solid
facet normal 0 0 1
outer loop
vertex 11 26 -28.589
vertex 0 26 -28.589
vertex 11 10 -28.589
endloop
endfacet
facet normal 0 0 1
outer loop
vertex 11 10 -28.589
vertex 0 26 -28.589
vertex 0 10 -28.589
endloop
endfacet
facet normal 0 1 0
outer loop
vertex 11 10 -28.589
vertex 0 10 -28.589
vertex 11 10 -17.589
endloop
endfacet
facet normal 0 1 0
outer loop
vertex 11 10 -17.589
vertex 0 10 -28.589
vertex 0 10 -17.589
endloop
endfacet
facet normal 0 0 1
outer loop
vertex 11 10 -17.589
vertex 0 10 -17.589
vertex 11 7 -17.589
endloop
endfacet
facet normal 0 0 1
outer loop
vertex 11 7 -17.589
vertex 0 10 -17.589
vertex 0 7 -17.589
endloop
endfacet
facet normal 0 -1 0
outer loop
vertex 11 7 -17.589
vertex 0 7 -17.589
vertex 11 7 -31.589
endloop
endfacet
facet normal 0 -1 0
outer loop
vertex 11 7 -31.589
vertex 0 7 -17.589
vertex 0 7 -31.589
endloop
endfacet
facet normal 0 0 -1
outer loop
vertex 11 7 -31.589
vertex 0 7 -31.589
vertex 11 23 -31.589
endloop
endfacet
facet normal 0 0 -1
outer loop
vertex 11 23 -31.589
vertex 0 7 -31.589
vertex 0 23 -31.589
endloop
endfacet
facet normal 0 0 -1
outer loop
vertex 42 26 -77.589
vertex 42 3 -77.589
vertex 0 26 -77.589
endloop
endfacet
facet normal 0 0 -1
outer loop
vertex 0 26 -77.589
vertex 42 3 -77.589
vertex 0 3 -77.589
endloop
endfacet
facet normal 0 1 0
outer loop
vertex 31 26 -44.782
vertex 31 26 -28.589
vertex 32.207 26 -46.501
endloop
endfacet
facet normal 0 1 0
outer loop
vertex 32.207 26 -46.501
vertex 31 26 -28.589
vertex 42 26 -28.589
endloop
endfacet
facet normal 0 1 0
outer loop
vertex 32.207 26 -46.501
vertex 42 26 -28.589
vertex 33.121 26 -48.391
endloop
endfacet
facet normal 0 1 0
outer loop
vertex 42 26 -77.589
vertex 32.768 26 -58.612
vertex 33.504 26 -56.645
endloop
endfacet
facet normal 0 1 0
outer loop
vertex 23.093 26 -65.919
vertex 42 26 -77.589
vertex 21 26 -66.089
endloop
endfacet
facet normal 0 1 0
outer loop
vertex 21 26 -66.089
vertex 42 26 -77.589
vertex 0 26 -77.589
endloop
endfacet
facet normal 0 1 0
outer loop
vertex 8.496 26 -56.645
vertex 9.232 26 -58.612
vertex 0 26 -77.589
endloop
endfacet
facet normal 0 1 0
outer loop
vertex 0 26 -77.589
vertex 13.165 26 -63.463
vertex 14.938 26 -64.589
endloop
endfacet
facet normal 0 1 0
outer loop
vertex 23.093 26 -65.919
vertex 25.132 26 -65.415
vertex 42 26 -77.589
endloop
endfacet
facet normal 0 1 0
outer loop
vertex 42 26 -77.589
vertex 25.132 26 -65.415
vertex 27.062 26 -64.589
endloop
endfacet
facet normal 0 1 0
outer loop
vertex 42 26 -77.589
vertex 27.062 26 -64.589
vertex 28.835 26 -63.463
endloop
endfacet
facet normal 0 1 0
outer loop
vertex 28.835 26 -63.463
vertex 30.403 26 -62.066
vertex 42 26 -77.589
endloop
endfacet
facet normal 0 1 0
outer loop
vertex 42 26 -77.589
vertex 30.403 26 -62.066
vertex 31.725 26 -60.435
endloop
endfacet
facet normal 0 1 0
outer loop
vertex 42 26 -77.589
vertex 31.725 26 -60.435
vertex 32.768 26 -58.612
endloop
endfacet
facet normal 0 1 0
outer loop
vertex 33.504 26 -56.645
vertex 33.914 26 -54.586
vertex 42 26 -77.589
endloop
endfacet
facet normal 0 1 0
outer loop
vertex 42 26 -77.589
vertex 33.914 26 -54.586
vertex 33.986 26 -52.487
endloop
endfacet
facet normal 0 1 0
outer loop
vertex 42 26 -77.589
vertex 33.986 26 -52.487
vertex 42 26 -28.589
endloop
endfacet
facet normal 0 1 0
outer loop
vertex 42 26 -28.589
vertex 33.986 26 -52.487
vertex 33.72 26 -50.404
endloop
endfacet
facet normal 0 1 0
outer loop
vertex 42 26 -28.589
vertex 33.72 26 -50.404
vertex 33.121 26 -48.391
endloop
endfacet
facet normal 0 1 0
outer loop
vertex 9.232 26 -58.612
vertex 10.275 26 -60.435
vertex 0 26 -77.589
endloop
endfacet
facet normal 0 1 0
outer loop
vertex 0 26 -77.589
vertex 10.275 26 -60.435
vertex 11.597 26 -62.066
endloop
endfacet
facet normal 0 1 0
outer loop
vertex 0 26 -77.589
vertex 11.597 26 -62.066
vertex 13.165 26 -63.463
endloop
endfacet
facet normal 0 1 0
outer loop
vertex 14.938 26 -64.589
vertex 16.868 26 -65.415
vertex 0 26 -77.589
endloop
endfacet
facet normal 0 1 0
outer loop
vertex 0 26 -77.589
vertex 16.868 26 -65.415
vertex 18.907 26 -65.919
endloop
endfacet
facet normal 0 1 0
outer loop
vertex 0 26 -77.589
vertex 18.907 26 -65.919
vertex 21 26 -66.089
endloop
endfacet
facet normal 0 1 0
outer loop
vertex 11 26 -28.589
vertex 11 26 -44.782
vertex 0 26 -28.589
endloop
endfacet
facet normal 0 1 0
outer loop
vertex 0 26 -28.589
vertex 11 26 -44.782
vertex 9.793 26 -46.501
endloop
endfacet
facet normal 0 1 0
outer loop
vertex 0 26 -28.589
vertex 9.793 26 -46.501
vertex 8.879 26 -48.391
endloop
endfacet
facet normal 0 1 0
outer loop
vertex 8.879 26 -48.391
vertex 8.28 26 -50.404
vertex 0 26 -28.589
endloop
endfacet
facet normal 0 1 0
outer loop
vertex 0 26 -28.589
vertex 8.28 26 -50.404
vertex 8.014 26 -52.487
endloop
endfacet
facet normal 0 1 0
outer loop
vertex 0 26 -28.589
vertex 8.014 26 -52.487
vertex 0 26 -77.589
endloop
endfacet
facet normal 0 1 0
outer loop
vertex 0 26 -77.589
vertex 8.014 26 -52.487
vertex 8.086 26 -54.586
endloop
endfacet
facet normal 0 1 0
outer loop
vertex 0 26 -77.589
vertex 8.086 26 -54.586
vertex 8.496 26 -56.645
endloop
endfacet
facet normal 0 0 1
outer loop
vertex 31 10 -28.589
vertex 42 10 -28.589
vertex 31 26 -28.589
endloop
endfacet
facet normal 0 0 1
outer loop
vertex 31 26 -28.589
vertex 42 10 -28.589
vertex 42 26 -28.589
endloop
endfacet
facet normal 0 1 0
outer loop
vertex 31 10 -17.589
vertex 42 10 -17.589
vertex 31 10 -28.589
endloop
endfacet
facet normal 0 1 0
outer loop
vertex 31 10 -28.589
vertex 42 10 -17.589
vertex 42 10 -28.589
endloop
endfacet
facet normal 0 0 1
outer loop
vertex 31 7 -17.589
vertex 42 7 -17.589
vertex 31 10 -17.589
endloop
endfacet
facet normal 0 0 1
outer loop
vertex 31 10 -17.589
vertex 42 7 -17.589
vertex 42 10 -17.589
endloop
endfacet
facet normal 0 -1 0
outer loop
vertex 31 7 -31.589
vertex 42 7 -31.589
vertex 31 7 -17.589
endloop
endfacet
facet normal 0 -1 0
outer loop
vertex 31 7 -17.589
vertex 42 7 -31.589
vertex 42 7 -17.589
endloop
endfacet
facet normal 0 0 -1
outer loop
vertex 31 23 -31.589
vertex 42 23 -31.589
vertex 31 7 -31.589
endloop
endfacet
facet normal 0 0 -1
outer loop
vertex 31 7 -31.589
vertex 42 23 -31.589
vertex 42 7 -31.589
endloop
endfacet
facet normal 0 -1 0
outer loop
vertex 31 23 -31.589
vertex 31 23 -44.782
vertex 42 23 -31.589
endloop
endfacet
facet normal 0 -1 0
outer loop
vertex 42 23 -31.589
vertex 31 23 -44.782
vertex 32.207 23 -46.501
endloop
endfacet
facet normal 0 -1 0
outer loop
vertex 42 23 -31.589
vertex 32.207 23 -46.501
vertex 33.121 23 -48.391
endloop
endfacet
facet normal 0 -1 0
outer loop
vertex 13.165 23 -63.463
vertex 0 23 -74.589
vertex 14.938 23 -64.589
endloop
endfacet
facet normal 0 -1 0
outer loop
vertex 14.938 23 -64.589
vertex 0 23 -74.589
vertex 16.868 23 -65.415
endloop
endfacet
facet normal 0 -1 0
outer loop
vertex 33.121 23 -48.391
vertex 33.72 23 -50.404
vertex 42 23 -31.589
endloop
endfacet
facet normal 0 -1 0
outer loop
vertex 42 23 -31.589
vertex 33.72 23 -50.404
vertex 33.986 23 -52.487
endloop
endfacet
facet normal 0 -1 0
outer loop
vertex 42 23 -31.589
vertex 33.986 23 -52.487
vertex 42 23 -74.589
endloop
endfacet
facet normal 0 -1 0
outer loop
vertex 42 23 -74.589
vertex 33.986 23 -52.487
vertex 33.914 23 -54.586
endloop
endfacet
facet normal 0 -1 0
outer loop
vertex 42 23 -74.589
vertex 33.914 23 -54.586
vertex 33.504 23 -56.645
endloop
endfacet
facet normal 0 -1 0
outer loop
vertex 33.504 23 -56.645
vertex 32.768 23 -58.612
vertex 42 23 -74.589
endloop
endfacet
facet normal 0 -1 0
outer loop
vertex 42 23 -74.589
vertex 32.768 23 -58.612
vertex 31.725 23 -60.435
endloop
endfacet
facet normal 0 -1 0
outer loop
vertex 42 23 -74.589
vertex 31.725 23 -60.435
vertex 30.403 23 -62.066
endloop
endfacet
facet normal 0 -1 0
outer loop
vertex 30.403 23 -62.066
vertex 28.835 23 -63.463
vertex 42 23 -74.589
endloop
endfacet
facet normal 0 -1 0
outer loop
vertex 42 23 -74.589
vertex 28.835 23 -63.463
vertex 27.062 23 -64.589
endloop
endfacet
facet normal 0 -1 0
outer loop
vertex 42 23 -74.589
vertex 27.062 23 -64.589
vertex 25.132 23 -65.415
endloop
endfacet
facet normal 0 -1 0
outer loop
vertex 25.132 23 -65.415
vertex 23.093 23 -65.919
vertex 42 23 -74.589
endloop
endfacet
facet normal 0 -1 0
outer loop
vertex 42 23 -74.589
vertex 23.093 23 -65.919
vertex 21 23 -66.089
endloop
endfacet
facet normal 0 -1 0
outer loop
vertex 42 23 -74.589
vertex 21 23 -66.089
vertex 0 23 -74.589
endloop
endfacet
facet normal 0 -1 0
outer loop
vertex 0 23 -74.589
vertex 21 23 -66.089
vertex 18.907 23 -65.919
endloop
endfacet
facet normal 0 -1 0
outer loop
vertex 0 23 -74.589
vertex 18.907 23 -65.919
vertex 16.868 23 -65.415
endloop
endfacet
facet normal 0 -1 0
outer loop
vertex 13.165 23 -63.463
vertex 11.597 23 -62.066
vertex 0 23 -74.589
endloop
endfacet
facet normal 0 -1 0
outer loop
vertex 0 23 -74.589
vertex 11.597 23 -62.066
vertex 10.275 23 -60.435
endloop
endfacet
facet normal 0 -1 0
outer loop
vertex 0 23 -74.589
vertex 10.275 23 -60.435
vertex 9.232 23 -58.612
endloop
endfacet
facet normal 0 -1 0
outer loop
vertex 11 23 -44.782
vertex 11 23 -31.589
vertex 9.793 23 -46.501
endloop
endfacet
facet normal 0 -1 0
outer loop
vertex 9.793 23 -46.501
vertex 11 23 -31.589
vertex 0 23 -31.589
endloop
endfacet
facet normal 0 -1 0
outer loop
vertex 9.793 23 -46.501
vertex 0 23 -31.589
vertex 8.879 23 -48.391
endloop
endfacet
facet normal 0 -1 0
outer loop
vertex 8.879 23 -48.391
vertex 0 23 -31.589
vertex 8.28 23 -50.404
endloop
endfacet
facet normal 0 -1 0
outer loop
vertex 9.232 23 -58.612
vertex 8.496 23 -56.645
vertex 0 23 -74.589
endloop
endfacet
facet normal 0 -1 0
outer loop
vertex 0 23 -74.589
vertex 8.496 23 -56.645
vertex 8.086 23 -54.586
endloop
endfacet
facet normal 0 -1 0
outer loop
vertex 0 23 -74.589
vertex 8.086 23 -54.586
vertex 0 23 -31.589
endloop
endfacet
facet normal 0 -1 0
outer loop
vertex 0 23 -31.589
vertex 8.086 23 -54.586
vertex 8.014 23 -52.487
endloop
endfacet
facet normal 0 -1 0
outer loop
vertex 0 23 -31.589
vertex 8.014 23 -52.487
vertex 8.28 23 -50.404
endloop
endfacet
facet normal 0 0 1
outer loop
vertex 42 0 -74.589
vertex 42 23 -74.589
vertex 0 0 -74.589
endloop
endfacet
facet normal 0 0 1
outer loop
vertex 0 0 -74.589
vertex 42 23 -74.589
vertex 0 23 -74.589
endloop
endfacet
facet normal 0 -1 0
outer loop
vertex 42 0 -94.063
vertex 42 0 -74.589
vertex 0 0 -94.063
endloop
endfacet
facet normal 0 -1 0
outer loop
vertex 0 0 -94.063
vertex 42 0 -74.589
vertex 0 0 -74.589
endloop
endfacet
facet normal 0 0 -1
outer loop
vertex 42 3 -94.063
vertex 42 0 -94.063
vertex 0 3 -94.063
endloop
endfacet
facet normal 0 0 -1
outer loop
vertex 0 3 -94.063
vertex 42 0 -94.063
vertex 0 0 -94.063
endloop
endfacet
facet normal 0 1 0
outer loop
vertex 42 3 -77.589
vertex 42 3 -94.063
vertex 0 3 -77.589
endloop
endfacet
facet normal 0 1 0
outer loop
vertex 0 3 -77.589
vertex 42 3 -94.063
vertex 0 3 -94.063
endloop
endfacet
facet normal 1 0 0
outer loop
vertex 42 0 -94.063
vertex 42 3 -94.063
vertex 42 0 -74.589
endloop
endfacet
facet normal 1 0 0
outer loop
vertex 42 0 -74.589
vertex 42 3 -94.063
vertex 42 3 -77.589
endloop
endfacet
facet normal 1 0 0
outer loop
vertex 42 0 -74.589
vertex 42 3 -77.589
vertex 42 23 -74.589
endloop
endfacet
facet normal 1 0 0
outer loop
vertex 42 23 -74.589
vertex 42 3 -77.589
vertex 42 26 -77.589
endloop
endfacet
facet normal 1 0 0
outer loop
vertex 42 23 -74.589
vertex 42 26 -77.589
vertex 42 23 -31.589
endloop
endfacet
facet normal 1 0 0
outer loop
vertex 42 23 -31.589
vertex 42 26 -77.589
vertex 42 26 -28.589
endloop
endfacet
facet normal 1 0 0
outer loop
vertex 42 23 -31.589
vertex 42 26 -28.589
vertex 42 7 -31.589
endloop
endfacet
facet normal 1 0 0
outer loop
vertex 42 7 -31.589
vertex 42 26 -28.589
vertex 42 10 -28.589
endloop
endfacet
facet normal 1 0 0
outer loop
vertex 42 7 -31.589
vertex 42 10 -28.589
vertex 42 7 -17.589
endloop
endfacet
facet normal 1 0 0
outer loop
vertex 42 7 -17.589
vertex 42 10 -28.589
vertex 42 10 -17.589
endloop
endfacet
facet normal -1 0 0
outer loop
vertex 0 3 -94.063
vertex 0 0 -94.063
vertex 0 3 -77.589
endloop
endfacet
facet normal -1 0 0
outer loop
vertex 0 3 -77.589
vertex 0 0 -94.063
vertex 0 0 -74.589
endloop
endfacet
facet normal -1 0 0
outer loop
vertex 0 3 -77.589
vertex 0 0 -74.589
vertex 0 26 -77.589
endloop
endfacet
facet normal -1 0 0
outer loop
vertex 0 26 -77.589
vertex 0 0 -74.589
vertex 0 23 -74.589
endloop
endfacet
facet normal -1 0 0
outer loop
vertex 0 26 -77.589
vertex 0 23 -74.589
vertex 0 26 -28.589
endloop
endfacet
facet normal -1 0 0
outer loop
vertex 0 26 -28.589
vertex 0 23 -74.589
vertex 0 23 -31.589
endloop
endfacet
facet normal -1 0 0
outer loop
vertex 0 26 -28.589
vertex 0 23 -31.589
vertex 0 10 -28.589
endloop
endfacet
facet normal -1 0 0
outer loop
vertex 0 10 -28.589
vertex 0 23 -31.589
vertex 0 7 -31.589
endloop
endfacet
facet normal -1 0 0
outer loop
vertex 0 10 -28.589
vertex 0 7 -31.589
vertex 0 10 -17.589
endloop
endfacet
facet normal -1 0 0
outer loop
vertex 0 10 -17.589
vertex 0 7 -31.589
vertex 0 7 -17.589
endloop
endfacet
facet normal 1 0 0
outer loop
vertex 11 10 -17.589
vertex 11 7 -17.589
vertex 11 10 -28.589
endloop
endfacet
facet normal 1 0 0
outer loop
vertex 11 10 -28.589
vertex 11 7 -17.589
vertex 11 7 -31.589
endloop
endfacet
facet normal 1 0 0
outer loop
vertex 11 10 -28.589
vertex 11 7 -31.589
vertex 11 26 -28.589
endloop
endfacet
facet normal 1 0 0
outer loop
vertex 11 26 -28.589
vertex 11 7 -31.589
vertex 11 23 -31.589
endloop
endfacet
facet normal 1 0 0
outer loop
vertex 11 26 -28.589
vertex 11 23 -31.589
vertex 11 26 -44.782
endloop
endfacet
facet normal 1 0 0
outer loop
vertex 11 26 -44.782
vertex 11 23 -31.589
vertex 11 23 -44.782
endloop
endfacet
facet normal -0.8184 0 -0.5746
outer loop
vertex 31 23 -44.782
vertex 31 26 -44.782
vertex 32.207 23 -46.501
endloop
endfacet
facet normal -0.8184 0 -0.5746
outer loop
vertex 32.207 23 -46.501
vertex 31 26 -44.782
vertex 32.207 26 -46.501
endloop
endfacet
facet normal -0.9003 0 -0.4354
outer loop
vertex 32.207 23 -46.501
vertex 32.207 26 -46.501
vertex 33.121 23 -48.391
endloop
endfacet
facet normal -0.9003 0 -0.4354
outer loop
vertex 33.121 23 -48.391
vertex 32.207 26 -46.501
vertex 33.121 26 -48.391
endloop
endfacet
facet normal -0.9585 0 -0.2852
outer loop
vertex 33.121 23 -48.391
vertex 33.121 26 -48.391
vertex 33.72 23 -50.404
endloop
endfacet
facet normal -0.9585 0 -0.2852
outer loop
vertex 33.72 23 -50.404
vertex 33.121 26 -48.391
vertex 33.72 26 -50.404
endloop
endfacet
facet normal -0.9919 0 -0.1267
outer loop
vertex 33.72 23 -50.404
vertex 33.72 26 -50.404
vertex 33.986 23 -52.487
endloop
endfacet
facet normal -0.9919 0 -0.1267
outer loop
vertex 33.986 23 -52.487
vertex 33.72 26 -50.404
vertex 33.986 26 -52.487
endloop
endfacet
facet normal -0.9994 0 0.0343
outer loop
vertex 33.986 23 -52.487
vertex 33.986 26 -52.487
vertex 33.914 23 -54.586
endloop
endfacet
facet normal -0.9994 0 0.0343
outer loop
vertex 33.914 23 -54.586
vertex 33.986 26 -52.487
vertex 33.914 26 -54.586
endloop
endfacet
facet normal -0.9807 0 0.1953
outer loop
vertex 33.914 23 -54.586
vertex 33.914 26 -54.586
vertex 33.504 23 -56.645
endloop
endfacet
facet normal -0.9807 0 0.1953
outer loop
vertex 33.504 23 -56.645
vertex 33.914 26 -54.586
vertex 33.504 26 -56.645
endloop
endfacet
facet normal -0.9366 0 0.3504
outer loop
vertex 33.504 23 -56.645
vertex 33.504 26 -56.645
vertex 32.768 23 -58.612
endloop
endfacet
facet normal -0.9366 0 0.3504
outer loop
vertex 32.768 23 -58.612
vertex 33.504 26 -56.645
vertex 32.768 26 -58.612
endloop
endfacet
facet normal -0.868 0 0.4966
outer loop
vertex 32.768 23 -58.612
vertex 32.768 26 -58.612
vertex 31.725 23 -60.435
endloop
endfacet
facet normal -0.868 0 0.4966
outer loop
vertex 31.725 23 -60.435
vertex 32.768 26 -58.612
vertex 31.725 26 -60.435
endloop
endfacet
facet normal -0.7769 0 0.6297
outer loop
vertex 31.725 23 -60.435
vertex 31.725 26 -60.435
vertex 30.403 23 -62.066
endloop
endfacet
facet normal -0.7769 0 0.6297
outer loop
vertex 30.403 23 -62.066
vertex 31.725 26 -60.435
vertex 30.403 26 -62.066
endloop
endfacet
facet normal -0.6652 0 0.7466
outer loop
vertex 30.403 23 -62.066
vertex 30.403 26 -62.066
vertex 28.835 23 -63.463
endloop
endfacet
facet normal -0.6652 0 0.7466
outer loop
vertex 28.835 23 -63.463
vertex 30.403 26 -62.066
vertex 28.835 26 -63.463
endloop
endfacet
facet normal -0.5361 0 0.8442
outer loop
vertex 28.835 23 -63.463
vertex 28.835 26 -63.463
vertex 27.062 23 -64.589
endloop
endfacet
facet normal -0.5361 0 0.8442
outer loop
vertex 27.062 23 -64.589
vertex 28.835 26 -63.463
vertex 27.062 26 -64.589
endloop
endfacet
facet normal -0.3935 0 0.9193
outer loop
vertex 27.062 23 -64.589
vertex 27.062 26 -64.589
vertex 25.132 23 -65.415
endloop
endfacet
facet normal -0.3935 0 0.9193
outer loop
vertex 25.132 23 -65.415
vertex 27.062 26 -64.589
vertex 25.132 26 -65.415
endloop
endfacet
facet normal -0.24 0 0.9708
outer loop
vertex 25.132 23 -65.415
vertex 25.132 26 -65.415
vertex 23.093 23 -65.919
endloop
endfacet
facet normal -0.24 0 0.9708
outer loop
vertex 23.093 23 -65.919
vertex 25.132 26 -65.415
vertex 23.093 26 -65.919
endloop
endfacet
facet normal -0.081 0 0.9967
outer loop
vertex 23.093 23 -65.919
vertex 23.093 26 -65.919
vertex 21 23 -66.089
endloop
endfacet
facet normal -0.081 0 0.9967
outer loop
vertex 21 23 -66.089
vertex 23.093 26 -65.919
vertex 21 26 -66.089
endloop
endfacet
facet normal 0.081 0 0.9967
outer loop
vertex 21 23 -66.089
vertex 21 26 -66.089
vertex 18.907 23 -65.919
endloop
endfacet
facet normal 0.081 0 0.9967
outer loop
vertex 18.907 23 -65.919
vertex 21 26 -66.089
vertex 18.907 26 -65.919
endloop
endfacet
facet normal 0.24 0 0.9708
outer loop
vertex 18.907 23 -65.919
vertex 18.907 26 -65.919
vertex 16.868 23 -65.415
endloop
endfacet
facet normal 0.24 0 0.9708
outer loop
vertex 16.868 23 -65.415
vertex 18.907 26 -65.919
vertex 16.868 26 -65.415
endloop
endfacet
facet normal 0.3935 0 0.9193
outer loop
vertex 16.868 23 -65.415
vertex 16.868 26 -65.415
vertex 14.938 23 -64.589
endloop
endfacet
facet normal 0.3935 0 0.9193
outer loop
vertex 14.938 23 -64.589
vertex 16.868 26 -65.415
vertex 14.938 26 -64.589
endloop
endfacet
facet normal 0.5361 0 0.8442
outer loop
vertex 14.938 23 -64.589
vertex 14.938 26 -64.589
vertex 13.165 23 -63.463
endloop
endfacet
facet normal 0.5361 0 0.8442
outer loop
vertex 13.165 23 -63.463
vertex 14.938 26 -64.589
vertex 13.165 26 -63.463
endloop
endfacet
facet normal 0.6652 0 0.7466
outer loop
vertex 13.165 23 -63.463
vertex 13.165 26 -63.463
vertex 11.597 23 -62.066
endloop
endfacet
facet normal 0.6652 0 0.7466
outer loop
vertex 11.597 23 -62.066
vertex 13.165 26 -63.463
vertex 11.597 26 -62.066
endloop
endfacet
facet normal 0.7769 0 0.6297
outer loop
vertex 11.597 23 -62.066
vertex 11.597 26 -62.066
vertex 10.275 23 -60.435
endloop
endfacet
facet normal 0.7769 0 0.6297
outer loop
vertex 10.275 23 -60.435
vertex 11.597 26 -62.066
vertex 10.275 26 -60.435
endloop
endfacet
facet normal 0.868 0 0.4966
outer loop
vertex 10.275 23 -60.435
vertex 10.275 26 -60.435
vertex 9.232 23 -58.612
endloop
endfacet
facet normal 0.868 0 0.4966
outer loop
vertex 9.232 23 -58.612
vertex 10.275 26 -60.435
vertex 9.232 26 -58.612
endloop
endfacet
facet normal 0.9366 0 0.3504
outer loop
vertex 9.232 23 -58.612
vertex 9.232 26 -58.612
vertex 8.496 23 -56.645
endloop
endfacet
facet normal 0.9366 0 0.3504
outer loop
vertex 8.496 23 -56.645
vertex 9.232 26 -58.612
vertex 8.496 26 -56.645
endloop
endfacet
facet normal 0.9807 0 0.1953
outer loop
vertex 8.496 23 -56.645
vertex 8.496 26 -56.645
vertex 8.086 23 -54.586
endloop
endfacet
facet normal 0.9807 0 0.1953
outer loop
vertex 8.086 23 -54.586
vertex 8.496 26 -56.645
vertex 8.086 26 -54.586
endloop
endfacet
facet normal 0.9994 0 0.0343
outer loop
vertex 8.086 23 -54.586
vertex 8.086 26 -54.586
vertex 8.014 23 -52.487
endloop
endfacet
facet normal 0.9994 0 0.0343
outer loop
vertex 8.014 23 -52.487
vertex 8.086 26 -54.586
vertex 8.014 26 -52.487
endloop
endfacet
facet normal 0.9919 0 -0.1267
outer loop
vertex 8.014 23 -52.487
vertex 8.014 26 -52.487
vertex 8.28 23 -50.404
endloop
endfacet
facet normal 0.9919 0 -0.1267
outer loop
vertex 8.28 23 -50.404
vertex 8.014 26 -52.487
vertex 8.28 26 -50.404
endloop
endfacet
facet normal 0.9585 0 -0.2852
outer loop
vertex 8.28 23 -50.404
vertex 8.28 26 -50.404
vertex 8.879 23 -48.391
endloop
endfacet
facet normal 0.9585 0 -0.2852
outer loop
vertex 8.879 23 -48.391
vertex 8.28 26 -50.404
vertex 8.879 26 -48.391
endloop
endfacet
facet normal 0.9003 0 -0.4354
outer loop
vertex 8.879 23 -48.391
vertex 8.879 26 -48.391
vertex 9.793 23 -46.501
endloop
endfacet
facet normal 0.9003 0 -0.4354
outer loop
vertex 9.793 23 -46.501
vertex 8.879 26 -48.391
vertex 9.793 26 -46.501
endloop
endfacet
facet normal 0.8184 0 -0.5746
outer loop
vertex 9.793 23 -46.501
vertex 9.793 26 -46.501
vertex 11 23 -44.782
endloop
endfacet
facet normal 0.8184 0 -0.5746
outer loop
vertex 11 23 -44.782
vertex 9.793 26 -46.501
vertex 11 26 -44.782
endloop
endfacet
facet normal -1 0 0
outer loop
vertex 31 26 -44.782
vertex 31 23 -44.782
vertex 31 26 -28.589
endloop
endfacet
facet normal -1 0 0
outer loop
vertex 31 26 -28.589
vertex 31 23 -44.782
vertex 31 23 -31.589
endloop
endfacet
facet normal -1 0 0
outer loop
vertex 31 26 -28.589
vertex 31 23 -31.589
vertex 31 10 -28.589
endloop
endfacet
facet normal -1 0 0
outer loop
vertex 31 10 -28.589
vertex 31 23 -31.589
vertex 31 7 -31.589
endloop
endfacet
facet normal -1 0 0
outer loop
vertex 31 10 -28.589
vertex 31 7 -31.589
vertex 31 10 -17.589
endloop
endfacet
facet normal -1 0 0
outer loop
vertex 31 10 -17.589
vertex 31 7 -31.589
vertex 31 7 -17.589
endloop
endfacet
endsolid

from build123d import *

# Parameters (mm, degrees)
BOSS_EXTRUDE1_DEPTH = 42
CUT_EXTRUDE1_DEPTH  = 107.244079886


with BuildPart() as part:
    # Sketch2 → Boss-Extrude1 (new body)
    with BuildSketch(Plane(origin=(0, 0, 0), x_dir=(0, 0, -1), z_dir=(1, 0, 0))):
        Polygon((74.588748486, 0), (94.062768994, 0), (94.062768994, 3), (77.588748486, 3), (77.588748486, 26), (28.588748486, 26), (28.588748486, 10), (17.588748486, 10), (17.588748486, 7), (31.588748486, 7), (31.588748486, 23), (74.588748486, 23), align=None)
    extrude(amount=BOSS_EXTRUDE1_DEPTH)

    # Sketch3 → Cut-Extrude1 (cut, through all)
    with BuildSketch(Plane(origin=(0, 26, 0), x_dir=(1, 0, 0), z_dir=(0, 1, 0))):
        with BuildLine():
            Line((11, 17.588748486), (11, 44.782124623))
            ThreePointArc((11, 44.782124623), (21, 66.088748486), (31, 44.782124623))
            Line((31, 44.782124623), (31, 17.588748486))
            Line((31, 17.588748486), (11, 17.588748486))
        make_face()
    extrude(amount=-CUT_EXTRUDE1_DEPTH, mode=Mode.SUBTRACT)


solid = part.part
